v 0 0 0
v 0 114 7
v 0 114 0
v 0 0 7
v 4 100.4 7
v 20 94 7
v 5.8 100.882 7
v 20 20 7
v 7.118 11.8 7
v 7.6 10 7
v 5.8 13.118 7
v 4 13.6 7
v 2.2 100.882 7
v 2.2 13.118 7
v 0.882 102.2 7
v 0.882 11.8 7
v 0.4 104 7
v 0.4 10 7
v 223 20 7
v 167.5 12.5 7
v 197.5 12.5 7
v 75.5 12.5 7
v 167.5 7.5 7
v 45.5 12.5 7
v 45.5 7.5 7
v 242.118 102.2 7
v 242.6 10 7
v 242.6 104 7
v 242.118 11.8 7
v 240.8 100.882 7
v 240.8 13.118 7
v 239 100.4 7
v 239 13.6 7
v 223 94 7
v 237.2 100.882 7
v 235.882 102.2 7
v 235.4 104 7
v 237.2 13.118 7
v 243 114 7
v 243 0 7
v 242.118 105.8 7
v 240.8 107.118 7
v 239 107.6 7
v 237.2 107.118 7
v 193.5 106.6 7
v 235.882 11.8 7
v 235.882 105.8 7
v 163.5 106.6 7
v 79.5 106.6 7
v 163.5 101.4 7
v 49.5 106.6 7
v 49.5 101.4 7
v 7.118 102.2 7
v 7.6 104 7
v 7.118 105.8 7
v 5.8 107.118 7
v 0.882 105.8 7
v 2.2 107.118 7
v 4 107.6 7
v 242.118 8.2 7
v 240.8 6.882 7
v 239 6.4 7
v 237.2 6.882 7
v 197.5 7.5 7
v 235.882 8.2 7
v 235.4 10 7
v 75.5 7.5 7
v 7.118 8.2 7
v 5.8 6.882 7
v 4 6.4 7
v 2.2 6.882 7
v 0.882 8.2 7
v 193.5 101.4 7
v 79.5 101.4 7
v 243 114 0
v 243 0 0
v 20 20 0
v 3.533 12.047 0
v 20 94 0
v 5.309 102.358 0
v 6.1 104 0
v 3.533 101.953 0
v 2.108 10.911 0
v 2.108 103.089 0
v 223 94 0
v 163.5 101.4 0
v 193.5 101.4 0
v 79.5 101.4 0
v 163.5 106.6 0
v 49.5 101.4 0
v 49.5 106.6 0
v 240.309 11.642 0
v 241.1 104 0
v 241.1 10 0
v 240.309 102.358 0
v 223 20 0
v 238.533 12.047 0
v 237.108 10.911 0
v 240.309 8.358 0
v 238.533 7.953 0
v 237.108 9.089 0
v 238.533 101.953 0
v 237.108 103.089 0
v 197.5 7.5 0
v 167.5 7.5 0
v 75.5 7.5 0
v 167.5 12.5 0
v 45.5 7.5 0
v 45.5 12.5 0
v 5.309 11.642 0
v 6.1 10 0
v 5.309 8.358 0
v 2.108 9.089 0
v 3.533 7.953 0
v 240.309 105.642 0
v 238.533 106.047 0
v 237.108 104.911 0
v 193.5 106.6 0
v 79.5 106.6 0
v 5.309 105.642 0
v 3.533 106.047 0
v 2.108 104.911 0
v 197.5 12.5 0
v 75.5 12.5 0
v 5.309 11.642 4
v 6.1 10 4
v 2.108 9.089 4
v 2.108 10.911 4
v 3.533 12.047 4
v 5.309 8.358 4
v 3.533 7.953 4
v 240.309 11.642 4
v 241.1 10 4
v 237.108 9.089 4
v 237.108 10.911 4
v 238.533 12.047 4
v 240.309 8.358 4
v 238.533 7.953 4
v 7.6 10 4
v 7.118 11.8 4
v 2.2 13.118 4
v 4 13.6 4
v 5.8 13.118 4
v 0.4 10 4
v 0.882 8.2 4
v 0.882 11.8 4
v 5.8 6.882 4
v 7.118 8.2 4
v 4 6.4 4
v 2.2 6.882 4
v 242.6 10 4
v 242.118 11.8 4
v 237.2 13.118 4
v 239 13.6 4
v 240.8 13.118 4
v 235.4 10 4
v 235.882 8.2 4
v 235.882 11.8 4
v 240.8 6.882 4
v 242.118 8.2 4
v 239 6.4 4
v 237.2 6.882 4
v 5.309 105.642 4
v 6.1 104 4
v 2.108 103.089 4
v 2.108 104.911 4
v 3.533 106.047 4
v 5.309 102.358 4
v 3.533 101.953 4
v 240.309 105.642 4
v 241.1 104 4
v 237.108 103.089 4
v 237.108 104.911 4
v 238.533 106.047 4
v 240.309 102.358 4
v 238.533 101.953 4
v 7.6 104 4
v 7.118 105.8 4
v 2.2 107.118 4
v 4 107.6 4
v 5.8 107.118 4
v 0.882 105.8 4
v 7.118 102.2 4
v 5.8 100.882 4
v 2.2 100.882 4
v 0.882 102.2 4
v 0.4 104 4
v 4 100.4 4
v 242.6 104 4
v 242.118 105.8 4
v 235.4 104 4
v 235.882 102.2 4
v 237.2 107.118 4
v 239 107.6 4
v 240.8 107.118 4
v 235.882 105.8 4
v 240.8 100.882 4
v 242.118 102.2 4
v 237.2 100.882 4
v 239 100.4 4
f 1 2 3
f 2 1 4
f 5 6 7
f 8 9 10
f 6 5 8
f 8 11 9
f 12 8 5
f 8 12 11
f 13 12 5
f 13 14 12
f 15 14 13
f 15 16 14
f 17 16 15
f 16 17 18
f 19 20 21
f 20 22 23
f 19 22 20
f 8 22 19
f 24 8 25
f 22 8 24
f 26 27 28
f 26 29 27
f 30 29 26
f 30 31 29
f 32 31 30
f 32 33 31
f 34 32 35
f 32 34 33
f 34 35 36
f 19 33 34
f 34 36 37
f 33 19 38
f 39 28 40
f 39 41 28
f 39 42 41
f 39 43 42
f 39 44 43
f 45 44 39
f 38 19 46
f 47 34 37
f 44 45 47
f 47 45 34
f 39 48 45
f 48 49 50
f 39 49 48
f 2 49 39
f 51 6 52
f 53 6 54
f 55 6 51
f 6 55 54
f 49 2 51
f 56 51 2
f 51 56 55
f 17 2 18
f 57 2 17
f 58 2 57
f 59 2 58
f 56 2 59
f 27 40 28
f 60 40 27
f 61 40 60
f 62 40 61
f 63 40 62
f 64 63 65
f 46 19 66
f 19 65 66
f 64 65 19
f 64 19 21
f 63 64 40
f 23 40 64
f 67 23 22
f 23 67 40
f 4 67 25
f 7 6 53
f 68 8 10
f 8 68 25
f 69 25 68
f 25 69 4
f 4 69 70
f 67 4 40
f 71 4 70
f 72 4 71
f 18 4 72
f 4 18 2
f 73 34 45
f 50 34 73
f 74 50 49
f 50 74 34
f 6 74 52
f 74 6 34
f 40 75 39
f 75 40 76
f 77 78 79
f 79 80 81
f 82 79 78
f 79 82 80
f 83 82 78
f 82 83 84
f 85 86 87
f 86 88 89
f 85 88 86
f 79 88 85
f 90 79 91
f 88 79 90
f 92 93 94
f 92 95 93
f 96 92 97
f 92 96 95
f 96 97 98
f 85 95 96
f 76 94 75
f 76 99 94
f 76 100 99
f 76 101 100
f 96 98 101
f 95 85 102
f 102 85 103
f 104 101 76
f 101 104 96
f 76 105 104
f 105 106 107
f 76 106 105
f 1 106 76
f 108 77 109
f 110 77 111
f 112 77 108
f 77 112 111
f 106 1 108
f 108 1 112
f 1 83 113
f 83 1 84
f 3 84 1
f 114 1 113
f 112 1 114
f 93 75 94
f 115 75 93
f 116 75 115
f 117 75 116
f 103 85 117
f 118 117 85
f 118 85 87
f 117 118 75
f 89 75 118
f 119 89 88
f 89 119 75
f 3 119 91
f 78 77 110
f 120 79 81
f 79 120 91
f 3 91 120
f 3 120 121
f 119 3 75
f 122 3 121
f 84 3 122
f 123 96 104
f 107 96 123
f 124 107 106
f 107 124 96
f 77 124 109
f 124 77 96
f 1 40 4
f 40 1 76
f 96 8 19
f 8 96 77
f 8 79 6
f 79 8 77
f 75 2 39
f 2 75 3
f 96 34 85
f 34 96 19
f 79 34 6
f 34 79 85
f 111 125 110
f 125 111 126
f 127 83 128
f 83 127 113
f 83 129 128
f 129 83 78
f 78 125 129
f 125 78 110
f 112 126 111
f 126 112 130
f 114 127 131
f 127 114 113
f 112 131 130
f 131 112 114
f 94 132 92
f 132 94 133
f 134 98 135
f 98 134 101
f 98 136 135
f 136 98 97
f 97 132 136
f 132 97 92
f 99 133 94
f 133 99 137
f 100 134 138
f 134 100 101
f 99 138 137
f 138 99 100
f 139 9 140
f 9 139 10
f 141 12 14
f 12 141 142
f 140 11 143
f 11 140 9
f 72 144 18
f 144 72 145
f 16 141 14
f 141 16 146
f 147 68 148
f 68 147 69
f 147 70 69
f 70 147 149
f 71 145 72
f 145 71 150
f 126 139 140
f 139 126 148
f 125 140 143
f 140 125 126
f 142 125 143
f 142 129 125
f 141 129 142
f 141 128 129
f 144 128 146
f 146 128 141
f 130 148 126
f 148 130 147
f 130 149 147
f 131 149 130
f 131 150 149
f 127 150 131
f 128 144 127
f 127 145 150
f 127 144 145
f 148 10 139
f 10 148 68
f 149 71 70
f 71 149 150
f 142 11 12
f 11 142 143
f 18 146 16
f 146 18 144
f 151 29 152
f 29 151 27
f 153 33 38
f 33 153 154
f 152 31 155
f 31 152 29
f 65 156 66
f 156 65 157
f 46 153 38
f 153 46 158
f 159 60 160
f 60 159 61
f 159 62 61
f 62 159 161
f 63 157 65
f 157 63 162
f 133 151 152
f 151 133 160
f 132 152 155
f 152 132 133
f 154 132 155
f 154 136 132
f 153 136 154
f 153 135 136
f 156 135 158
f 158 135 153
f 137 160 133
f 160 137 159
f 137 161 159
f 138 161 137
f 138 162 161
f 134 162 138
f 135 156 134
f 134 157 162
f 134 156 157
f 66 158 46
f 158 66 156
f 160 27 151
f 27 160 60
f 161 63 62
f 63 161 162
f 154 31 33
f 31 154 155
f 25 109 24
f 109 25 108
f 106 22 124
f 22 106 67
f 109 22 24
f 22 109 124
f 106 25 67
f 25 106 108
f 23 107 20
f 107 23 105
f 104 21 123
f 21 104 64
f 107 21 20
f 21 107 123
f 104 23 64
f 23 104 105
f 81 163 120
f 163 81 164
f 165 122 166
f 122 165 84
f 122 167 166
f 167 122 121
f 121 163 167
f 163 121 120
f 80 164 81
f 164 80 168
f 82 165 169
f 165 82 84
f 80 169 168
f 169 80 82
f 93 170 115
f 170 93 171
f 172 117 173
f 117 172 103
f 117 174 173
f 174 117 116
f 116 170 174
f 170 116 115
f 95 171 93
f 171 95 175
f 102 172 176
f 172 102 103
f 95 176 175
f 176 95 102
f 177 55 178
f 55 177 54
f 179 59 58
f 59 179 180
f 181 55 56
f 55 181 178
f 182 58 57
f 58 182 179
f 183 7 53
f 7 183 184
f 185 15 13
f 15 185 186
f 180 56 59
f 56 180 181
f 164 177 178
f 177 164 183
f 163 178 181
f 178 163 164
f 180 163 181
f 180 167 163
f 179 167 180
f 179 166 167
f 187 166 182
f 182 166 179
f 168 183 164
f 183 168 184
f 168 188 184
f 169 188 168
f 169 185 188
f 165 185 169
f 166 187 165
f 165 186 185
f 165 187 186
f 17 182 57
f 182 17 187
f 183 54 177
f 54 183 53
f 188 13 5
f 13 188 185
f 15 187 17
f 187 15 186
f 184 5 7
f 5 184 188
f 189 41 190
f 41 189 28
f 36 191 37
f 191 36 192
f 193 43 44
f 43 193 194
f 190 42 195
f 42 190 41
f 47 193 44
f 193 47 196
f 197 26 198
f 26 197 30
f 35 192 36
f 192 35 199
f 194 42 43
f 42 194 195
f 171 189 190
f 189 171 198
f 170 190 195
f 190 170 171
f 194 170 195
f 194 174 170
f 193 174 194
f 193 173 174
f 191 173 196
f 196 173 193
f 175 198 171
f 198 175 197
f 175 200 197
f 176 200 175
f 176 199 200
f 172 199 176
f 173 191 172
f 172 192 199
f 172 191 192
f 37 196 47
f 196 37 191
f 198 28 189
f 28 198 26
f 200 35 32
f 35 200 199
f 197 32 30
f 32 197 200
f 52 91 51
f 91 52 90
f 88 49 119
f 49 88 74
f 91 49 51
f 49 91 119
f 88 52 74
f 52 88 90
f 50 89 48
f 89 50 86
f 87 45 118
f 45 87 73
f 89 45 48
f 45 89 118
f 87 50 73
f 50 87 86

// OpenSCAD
//mounting camera tower
a=243;
b=90-16;
c=114;

difference() {
    union() {
        translate([0,0,0])
        cube([a, 20, 7]);
        translate([0,0,0])
        cube([20, c, 7]);
        translate([a-20, 0, 0])
        cube([20, c, 7]);
        translate([0, b+20, 0])
        cube([a, 20, 7]);
    }
translate([1.5+2.5, 10, -10])
cylinder(h=20, r=2.1);
translate([a-(1.5+2.5), 10, -10])
cylinder(h=20, r=2.1);
translate([1.5+2.5, 10, 4])
cylinder(h=20, r=3.6);
translate([a-(1.5+2.5), 10, 4])
cylinder(h=20, r=3.6);
translate([(a-122)/2, 10, 0]) cube([30, 5, 30], center=true);
translate([a-((a-122)/2), 10, 0]) cube([30, 5, 30], center=true);
translate([1.5+2.5, c-10, -10])
cylinder(h=20, r=2.1);
translate([a-(1.5+2.5), c-10, -10])
cylinder(h=20, r=2.1);
translate([1.5+2.5, c-10, 4])
cylinder(h=20, r=3.6);
translate([a-(1.5+2.5), c-10, 4])
cylinder(h=20, r=3.6);
translate([(a-114)/2, c-10, 0]) cube([30, 5.2, 20], center=true);
translate([a-((a-114)/2), c-10, 0]) cube([30, 5.2, 20], center=true);    
}
